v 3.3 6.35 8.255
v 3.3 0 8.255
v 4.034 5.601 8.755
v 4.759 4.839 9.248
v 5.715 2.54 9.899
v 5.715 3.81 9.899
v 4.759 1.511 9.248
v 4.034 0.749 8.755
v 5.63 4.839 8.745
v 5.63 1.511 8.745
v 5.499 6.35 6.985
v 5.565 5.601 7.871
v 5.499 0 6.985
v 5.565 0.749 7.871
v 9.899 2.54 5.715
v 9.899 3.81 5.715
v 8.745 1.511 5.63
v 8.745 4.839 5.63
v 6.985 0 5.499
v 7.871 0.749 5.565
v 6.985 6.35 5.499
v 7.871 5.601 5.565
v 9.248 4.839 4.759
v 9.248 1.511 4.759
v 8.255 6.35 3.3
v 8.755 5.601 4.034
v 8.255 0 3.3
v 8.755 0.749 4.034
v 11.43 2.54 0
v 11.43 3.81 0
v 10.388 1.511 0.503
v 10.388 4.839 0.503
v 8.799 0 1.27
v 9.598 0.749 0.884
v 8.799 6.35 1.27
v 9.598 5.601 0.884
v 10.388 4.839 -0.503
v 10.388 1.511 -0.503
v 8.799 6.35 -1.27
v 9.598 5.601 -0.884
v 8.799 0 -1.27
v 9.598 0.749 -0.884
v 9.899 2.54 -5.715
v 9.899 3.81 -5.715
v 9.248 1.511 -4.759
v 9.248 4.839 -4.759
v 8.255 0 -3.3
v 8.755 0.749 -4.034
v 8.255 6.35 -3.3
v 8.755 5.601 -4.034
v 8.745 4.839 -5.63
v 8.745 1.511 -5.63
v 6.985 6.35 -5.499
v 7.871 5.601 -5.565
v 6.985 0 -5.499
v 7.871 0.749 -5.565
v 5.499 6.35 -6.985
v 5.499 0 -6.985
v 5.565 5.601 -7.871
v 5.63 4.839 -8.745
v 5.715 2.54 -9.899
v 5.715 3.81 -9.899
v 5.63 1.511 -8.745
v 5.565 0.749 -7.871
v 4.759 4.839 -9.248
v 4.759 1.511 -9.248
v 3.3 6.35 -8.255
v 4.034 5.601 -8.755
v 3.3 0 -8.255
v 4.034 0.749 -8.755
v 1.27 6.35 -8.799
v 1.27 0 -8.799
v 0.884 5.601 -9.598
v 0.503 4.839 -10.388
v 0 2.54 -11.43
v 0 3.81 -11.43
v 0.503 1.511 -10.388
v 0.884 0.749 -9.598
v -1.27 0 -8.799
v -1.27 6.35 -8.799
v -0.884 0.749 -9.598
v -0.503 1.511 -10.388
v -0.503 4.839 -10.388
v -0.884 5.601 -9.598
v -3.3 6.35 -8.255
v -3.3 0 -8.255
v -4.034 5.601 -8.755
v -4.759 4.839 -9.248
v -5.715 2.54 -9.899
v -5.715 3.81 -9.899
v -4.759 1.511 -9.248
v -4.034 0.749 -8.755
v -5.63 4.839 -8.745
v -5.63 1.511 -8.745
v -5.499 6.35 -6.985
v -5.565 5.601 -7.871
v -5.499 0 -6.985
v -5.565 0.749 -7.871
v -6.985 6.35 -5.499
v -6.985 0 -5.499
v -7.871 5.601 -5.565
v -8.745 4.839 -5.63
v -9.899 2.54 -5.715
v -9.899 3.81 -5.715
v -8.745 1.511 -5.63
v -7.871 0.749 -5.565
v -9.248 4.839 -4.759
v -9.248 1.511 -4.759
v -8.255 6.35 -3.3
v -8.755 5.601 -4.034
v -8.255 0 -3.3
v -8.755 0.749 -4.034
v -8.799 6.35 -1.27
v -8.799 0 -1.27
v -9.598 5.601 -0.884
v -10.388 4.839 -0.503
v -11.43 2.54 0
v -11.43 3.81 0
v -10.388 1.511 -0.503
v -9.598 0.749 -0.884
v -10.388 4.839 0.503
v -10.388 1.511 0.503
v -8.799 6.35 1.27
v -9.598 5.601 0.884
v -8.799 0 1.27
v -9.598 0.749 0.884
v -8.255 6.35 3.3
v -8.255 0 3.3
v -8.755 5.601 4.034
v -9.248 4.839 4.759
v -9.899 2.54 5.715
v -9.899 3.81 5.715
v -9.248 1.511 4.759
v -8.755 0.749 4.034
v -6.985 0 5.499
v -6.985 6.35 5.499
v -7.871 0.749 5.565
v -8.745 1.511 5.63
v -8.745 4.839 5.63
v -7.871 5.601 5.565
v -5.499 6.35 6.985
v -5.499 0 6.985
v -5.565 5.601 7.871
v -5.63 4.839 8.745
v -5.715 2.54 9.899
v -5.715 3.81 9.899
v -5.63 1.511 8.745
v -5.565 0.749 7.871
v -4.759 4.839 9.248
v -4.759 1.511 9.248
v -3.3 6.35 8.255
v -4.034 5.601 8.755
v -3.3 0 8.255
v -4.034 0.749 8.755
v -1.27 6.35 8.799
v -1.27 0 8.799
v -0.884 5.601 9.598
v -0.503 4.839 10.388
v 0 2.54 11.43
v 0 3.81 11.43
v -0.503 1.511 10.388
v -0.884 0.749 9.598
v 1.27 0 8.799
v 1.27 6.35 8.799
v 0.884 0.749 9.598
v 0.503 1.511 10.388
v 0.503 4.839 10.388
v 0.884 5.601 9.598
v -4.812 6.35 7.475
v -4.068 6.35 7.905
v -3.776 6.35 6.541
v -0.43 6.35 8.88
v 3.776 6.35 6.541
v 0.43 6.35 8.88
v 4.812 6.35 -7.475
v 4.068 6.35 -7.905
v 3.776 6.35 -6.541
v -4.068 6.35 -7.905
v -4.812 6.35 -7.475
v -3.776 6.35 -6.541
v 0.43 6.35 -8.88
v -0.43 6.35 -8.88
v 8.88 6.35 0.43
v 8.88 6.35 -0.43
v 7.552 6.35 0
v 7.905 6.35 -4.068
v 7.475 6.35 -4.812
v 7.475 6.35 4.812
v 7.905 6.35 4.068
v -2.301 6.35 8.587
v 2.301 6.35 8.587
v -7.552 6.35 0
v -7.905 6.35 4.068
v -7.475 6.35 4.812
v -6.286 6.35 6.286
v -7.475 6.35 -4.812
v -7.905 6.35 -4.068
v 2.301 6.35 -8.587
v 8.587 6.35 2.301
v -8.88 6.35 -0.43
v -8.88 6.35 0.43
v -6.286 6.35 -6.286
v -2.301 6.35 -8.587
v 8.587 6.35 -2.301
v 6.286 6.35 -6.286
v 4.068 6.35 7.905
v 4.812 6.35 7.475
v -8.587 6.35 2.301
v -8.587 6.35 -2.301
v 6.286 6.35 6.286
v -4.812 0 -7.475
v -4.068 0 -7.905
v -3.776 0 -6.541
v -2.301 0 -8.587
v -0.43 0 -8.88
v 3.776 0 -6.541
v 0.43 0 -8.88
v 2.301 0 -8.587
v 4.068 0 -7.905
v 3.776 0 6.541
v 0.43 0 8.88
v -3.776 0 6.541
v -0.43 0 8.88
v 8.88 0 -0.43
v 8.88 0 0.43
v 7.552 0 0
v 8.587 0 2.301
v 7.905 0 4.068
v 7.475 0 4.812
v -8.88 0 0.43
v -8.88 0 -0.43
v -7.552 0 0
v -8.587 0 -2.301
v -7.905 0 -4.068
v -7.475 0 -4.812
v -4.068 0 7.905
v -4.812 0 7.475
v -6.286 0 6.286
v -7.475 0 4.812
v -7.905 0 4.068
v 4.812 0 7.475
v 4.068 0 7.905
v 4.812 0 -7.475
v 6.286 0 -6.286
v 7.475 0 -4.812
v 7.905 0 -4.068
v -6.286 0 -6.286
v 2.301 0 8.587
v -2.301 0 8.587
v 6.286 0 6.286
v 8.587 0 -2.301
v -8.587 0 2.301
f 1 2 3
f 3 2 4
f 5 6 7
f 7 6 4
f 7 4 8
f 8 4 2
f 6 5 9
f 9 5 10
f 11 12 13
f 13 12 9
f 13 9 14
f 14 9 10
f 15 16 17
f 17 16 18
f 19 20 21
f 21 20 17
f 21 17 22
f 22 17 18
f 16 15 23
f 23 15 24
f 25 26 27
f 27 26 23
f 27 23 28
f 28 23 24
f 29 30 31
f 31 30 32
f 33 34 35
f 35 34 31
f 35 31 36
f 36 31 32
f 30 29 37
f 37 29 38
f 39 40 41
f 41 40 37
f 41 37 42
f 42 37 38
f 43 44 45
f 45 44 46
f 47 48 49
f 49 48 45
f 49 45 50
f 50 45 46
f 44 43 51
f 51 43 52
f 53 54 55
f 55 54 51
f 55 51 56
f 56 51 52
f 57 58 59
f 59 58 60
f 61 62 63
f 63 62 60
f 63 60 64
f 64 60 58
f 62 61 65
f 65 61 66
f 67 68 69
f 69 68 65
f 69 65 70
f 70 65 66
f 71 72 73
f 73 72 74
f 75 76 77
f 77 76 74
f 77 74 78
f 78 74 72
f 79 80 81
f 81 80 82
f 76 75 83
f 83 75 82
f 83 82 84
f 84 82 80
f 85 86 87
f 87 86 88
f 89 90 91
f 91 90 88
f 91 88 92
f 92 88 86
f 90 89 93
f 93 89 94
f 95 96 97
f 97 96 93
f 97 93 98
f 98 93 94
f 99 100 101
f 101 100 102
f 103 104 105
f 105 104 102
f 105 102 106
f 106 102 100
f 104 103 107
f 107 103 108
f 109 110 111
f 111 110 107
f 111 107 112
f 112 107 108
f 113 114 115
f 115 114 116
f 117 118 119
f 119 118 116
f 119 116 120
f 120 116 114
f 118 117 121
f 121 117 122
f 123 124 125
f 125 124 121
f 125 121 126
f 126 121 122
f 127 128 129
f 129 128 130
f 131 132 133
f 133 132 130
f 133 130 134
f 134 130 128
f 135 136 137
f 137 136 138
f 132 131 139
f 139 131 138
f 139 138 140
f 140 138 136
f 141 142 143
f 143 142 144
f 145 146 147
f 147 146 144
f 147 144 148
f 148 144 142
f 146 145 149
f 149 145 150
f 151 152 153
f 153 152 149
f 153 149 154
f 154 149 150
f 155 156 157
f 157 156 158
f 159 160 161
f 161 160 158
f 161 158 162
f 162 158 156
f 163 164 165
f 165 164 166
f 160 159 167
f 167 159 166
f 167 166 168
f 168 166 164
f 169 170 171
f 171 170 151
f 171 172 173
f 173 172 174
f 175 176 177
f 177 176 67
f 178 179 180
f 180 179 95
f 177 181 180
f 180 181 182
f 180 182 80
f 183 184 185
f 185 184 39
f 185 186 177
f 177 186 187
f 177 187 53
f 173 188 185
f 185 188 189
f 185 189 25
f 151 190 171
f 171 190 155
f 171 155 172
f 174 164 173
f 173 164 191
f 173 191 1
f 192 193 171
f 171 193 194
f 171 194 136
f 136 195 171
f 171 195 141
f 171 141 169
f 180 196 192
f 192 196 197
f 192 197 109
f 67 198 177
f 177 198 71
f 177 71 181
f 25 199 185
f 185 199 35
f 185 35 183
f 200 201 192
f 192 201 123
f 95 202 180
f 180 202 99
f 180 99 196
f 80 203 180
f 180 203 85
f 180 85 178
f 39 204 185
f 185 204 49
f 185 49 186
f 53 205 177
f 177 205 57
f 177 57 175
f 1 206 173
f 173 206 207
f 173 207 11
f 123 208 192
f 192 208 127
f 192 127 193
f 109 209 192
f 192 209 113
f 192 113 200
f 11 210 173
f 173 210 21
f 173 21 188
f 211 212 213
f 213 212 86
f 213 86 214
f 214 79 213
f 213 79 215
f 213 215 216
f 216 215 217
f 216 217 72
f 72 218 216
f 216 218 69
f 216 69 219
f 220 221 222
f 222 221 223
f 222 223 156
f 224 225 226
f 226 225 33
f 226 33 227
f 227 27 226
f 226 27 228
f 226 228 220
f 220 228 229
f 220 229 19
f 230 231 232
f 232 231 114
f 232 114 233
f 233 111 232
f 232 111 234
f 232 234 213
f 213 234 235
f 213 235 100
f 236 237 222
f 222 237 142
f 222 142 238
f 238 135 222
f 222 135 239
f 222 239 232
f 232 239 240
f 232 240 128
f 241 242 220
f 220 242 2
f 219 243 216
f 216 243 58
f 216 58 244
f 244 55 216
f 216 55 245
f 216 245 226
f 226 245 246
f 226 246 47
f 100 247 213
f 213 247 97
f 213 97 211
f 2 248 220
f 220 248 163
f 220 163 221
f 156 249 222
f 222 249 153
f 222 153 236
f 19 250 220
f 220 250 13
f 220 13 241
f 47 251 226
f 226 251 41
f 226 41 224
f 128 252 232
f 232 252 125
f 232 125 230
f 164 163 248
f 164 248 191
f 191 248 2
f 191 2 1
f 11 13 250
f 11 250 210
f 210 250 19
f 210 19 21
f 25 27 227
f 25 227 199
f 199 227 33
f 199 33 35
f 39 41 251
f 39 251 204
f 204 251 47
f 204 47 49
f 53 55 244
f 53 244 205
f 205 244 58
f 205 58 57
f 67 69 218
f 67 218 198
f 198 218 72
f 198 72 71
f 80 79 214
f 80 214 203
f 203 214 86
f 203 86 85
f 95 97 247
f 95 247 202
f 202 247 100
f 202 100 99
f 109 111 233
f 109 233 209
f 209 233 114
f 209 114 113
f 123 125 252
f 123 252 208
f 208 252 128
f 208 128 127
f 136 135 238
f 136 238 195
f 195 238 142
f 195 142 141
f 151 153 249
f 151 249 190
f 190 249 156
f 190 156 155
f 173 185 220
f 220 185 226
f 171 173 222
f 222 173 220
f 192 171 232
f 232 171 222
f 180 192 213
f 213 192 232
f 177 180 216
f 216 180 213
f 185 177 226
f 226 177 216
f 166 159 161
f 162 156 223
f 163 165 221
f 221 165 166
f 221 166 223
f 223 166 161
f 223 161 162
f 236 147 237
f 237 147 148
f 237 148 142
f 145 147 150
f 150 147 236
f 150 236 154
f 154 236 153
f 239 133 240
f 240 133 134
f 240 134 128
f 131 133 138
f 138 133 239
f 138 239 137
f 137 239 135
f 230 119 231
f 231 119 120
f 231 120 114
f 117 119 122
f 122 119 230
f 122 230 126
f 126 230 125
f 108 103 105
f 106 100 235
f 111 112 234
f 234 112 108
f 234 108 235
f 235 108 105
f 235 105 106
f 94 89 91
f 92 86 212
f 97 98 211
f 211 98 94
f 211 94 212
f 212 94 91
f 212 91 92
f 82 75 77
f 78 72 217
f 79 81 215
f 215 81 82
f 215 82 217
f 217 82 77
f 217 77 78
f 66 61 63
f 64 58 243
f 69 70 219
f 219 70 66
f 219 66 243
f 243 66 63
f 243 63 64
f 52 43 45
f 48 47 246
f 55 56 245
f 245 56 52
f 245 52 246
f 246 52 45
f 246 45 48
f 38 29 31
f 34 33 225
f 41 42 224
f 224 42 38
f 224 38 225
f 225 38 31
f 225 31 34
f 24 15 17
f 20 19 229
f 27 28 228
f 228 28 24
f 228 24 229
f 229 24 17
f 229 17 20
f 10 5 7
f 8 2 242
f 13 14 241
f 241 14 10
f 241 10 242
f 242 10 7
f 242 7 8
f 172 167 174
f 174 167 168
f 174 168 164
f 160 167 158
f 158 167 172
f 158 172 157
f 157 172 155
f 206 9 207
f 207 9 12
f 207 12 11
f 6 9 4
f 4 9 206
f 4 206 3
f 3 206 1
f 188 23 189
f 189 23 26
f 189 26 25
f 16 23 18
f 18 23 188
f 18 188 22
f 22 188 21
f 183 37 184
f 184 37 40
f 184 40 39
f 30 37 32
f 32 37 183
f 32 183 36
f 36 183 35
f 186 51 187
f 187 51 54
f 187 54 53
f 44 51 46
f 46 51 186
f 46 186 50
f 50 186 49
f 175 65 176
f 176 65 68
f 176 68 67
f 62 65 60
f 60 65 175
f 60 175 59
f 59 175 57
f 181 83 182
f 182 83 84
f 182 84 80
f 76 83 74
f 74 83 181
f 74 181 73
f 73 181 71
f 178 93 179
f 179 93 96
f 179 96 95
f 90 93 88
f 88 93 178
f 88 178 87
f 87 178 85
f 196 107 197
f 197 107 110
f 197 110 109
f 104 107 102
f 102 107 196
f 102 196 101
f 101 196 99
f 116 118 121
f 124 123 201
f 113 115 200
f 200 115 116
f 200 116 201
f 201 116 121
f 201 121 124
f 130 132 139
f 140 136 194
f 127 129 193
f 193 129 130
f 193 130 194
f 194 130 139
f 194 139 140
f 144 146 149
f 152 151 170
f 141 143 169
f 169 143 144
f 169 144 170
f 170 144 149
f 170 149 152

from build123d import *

# Parameters (mm, degrees)
SKETCH1_R           = 8.89
BOSS_EXTRUDE1_DEPTH = 6.35


with BuildPart() as part:
    # Sketch1 → Boss-Extrude1 (new body)
    # profile 1 of 13: a face of its own
    with BuildSketch(Plane(origin=(0, 0, 0), x_dir=(1, 0, 0), z_dir=(0, 1, 0))):
        Circle(SKETCH1_R)
        Polygon((3.776159436, -6.5405), (7.552318871, 0), (3.776159436, 6.5405), (-3.776159436, 6.5405), (-7.552318871, 0), (-3.776159436, -6.5405), align=None, mode=Mode.SUBTRACT)
    # profile 2 of 13: a face of its own
    with BuildSketch(Plane(origin=(0, 0, 0), x_dir=(1, 0, 0), z_dir=(0, 1, 0))):
        with BuildLine():
            ThreePointArc((-8.798818102, -1.27), (-8.89, 0), (-8.798818102, 1.27))
            Line((-8.798818102, 1.27), (-11.43, 0))
            Line((-11.43, 0), (-8.798818102, -1.27))
        make_face()
    # profile 3 of 13: a face of its own
    with BuildSketch(Plane(origin=(0, 0, 0), x_dir=(1, 0, 0), z_dir=(0, 1, 0))):
        with BuildLine():
            ThreePointArc((-6.985, -5.499261314), (-7.69896584, -4.445), (-8.255, -3.299556788))
            Line((-8.255, -3.299556788), (-9.898670365, -5.715))
            Line((-9.898670365, -5.715), (-6.985, -5.499261314))
        make_face()
    # profile 4 of 13: a face of its own
    with BuildSketch(Plane(origin=(0, 0, 0), x_dir=(1, 0, 0), z_dir=(0, 1, 0))):
        with BuildLine():
            ThreePointArc((-3.299556788, -8.255), (-4.445, -7.69896584), (-5.499261314, -6.985))
            Line((-5.499261314, -6.985), (-5.715, -9.898670365))
            Line((-5.715, -9.898670365), (-3.299556788, -8.255))
        make_face()
    # profile 5 of 13: a face of its own
    with BuildSketch(Plane(origin=(0, 0, 0), x_dir=(1, 0, 0), z_dir=(0, 1, 0))):
        with BuildLine():
            ThreePointArc((1.27, -8.798818102), (0, -8.89), (-1.27, -8.798818102))
            Line((-1.27, -8.798818102), (0, -11.43))
            Line((0, -11.43), (1.27, -8.798818102))
        make_face()
    # profile 6 of 13: a face of its own
    with BuildSketch(Plane(origin=(0, 0, 0), x_dir=(1, 0, 0), z_dir=(0, 1, 0))):
        with BuildLine():
            Line((5.715, -9.898670365), (5.499261314, -6.985))
            ThreePointArc((5.499261314, -6.985), (4.445, -7.69896584), (3.299556788, -8.255))
            Line((3.299556788, -8.255), (5.715, -9.898670365))
        make_face()
    # profile 7 of 13: a face of its own
    with BuildSketch(Plane(origin=(0, 0, 0), x_dir=(1, 0, 0), z_dir=(0, 1, 0))):
        with BuildLine():
            Line((9.898670365, -5.715), (8.255, -3.299556788))
            ThreePointArc((8.255, -3.299556788), (7.69896584, -4.445), (6.985, -5.499261314))
            Line((6.985, -5.499261314), (9.898670365, -5.715))
        make_face()
    # profile 8 of 13: a face of its own
    with BuildSketch(Plane(origin=(0, 0, 0), x_dir=(1, 0, 0), z_dir=(0, 1, 0))):
        with BuildLine():
            Line((11.43, 0), (8.798818102, 1.27))
            ThreePointArc((8.798818102, 1.27), (8.867175225, 0.636634538), (8.89, 0))
            ThreePointArc((8.89, 0), (8.867175225, -0.636634538), (8.798818102, -1.27))
            Line((8.798818102, -1.27), (11.43, 0))
        make_face()
    # profile 9 of 13: a face of its own
    with BuildSketch(Plane(origin=(0, 0, 0), x_dir=(1, 0, 0), z_dir=(0, 1, 0))):
        with BuildLine():
            Line((9.898670365, 5.715), (6.985, 5.499261314))
            ThreePointArc((6.985, 5.499261314), (7.69896584, 4.445), (8.255, 3.299556788))
            Line((8.255, 3.299556788), (9.898670365, 5.715))
        make_face()
    # profile 10 of 13: a face of its own
    with BuildSketch(Plane(origin=(0, 0, 0), x_dir=(1, 0, 0), z_dir=(0, 1, 0))):
        with BuildLine():
            Line((5.715, 9.898670365), (3.299556788, 8.255))
            ThreePointArc((3.299556788, 8.255), (4.445, 7.69896584), (5.499261314, 6.985))
            Line((5.499261314, 6.985), (5.715, 9.898670365))
        make_face()
    # profile 11 of 13: a face of its own
    with BuildSketch(Plane(origin=(0, 0, 0), x_dir=(1, 0, 0), z_dir=(0, 1, 0))):
        with BuildLine():
            Line((1.27, 8.798818102), (0, 11.43))
            Line((0, 11.43), (-1.27, 8.798818102))
            ThreePointArc((-1.27, 8.798818102), (0, 8.89), (1.27, 8.798818102))
        make_face()
    # profile 12 of 13: a face of its own
    with BuildSketch(Plane(origin=(0, 0, 0), x_dir=(1, 0, 0), z_dir=(0, 1, 0))):
        with BuildLine():
            ThreePointArc((-5.499261314, 6.985), (-4.445, 7.69896584), (-3.299556788, 8.255))
            Line((-3.299556788, 8.255), (-5.715, 9.898670365))
            Line((-5.715, 9.898670365), (-5.499261314, 6.985))
        make_face()
    # profile 13 of 13: a face of its own
    with BuildSketch(Plane(origin=(0, 0, 0), x_dir=(1, 0, 0), z_dir=(0, 1, 0))):
        with BuildLine():
            ThreePointArc((-8.255, 3.299556788), (-7.69896584, 4.445), (-6.985, 5.499261314))
            Line((-6.985, 5.499261314), (-9.898670365, 5.715))
            Line((-9.898670365, 5.715), (-8.255, 3.299556788))
        make_face()
    extrude(amount=BOSS_EXTRUDE1_DEPTH)

    # Sketch2 → Cut-Revolve1 (revolve, cut)
    with BuildSketch(Plane.XY):
        Polygon((-11.43, 3.81), (-8.89, 6.35), (-11.43, 6.35), align=None)
        Polygon((-11.43, 0), (-8.89, 0), (-11.43, 2.54), align=None)
    revolve(axis=Axis((0, 0, 0), (0, 1, 0)), mode=Mode.SUBTRACT)


solid = part.part
